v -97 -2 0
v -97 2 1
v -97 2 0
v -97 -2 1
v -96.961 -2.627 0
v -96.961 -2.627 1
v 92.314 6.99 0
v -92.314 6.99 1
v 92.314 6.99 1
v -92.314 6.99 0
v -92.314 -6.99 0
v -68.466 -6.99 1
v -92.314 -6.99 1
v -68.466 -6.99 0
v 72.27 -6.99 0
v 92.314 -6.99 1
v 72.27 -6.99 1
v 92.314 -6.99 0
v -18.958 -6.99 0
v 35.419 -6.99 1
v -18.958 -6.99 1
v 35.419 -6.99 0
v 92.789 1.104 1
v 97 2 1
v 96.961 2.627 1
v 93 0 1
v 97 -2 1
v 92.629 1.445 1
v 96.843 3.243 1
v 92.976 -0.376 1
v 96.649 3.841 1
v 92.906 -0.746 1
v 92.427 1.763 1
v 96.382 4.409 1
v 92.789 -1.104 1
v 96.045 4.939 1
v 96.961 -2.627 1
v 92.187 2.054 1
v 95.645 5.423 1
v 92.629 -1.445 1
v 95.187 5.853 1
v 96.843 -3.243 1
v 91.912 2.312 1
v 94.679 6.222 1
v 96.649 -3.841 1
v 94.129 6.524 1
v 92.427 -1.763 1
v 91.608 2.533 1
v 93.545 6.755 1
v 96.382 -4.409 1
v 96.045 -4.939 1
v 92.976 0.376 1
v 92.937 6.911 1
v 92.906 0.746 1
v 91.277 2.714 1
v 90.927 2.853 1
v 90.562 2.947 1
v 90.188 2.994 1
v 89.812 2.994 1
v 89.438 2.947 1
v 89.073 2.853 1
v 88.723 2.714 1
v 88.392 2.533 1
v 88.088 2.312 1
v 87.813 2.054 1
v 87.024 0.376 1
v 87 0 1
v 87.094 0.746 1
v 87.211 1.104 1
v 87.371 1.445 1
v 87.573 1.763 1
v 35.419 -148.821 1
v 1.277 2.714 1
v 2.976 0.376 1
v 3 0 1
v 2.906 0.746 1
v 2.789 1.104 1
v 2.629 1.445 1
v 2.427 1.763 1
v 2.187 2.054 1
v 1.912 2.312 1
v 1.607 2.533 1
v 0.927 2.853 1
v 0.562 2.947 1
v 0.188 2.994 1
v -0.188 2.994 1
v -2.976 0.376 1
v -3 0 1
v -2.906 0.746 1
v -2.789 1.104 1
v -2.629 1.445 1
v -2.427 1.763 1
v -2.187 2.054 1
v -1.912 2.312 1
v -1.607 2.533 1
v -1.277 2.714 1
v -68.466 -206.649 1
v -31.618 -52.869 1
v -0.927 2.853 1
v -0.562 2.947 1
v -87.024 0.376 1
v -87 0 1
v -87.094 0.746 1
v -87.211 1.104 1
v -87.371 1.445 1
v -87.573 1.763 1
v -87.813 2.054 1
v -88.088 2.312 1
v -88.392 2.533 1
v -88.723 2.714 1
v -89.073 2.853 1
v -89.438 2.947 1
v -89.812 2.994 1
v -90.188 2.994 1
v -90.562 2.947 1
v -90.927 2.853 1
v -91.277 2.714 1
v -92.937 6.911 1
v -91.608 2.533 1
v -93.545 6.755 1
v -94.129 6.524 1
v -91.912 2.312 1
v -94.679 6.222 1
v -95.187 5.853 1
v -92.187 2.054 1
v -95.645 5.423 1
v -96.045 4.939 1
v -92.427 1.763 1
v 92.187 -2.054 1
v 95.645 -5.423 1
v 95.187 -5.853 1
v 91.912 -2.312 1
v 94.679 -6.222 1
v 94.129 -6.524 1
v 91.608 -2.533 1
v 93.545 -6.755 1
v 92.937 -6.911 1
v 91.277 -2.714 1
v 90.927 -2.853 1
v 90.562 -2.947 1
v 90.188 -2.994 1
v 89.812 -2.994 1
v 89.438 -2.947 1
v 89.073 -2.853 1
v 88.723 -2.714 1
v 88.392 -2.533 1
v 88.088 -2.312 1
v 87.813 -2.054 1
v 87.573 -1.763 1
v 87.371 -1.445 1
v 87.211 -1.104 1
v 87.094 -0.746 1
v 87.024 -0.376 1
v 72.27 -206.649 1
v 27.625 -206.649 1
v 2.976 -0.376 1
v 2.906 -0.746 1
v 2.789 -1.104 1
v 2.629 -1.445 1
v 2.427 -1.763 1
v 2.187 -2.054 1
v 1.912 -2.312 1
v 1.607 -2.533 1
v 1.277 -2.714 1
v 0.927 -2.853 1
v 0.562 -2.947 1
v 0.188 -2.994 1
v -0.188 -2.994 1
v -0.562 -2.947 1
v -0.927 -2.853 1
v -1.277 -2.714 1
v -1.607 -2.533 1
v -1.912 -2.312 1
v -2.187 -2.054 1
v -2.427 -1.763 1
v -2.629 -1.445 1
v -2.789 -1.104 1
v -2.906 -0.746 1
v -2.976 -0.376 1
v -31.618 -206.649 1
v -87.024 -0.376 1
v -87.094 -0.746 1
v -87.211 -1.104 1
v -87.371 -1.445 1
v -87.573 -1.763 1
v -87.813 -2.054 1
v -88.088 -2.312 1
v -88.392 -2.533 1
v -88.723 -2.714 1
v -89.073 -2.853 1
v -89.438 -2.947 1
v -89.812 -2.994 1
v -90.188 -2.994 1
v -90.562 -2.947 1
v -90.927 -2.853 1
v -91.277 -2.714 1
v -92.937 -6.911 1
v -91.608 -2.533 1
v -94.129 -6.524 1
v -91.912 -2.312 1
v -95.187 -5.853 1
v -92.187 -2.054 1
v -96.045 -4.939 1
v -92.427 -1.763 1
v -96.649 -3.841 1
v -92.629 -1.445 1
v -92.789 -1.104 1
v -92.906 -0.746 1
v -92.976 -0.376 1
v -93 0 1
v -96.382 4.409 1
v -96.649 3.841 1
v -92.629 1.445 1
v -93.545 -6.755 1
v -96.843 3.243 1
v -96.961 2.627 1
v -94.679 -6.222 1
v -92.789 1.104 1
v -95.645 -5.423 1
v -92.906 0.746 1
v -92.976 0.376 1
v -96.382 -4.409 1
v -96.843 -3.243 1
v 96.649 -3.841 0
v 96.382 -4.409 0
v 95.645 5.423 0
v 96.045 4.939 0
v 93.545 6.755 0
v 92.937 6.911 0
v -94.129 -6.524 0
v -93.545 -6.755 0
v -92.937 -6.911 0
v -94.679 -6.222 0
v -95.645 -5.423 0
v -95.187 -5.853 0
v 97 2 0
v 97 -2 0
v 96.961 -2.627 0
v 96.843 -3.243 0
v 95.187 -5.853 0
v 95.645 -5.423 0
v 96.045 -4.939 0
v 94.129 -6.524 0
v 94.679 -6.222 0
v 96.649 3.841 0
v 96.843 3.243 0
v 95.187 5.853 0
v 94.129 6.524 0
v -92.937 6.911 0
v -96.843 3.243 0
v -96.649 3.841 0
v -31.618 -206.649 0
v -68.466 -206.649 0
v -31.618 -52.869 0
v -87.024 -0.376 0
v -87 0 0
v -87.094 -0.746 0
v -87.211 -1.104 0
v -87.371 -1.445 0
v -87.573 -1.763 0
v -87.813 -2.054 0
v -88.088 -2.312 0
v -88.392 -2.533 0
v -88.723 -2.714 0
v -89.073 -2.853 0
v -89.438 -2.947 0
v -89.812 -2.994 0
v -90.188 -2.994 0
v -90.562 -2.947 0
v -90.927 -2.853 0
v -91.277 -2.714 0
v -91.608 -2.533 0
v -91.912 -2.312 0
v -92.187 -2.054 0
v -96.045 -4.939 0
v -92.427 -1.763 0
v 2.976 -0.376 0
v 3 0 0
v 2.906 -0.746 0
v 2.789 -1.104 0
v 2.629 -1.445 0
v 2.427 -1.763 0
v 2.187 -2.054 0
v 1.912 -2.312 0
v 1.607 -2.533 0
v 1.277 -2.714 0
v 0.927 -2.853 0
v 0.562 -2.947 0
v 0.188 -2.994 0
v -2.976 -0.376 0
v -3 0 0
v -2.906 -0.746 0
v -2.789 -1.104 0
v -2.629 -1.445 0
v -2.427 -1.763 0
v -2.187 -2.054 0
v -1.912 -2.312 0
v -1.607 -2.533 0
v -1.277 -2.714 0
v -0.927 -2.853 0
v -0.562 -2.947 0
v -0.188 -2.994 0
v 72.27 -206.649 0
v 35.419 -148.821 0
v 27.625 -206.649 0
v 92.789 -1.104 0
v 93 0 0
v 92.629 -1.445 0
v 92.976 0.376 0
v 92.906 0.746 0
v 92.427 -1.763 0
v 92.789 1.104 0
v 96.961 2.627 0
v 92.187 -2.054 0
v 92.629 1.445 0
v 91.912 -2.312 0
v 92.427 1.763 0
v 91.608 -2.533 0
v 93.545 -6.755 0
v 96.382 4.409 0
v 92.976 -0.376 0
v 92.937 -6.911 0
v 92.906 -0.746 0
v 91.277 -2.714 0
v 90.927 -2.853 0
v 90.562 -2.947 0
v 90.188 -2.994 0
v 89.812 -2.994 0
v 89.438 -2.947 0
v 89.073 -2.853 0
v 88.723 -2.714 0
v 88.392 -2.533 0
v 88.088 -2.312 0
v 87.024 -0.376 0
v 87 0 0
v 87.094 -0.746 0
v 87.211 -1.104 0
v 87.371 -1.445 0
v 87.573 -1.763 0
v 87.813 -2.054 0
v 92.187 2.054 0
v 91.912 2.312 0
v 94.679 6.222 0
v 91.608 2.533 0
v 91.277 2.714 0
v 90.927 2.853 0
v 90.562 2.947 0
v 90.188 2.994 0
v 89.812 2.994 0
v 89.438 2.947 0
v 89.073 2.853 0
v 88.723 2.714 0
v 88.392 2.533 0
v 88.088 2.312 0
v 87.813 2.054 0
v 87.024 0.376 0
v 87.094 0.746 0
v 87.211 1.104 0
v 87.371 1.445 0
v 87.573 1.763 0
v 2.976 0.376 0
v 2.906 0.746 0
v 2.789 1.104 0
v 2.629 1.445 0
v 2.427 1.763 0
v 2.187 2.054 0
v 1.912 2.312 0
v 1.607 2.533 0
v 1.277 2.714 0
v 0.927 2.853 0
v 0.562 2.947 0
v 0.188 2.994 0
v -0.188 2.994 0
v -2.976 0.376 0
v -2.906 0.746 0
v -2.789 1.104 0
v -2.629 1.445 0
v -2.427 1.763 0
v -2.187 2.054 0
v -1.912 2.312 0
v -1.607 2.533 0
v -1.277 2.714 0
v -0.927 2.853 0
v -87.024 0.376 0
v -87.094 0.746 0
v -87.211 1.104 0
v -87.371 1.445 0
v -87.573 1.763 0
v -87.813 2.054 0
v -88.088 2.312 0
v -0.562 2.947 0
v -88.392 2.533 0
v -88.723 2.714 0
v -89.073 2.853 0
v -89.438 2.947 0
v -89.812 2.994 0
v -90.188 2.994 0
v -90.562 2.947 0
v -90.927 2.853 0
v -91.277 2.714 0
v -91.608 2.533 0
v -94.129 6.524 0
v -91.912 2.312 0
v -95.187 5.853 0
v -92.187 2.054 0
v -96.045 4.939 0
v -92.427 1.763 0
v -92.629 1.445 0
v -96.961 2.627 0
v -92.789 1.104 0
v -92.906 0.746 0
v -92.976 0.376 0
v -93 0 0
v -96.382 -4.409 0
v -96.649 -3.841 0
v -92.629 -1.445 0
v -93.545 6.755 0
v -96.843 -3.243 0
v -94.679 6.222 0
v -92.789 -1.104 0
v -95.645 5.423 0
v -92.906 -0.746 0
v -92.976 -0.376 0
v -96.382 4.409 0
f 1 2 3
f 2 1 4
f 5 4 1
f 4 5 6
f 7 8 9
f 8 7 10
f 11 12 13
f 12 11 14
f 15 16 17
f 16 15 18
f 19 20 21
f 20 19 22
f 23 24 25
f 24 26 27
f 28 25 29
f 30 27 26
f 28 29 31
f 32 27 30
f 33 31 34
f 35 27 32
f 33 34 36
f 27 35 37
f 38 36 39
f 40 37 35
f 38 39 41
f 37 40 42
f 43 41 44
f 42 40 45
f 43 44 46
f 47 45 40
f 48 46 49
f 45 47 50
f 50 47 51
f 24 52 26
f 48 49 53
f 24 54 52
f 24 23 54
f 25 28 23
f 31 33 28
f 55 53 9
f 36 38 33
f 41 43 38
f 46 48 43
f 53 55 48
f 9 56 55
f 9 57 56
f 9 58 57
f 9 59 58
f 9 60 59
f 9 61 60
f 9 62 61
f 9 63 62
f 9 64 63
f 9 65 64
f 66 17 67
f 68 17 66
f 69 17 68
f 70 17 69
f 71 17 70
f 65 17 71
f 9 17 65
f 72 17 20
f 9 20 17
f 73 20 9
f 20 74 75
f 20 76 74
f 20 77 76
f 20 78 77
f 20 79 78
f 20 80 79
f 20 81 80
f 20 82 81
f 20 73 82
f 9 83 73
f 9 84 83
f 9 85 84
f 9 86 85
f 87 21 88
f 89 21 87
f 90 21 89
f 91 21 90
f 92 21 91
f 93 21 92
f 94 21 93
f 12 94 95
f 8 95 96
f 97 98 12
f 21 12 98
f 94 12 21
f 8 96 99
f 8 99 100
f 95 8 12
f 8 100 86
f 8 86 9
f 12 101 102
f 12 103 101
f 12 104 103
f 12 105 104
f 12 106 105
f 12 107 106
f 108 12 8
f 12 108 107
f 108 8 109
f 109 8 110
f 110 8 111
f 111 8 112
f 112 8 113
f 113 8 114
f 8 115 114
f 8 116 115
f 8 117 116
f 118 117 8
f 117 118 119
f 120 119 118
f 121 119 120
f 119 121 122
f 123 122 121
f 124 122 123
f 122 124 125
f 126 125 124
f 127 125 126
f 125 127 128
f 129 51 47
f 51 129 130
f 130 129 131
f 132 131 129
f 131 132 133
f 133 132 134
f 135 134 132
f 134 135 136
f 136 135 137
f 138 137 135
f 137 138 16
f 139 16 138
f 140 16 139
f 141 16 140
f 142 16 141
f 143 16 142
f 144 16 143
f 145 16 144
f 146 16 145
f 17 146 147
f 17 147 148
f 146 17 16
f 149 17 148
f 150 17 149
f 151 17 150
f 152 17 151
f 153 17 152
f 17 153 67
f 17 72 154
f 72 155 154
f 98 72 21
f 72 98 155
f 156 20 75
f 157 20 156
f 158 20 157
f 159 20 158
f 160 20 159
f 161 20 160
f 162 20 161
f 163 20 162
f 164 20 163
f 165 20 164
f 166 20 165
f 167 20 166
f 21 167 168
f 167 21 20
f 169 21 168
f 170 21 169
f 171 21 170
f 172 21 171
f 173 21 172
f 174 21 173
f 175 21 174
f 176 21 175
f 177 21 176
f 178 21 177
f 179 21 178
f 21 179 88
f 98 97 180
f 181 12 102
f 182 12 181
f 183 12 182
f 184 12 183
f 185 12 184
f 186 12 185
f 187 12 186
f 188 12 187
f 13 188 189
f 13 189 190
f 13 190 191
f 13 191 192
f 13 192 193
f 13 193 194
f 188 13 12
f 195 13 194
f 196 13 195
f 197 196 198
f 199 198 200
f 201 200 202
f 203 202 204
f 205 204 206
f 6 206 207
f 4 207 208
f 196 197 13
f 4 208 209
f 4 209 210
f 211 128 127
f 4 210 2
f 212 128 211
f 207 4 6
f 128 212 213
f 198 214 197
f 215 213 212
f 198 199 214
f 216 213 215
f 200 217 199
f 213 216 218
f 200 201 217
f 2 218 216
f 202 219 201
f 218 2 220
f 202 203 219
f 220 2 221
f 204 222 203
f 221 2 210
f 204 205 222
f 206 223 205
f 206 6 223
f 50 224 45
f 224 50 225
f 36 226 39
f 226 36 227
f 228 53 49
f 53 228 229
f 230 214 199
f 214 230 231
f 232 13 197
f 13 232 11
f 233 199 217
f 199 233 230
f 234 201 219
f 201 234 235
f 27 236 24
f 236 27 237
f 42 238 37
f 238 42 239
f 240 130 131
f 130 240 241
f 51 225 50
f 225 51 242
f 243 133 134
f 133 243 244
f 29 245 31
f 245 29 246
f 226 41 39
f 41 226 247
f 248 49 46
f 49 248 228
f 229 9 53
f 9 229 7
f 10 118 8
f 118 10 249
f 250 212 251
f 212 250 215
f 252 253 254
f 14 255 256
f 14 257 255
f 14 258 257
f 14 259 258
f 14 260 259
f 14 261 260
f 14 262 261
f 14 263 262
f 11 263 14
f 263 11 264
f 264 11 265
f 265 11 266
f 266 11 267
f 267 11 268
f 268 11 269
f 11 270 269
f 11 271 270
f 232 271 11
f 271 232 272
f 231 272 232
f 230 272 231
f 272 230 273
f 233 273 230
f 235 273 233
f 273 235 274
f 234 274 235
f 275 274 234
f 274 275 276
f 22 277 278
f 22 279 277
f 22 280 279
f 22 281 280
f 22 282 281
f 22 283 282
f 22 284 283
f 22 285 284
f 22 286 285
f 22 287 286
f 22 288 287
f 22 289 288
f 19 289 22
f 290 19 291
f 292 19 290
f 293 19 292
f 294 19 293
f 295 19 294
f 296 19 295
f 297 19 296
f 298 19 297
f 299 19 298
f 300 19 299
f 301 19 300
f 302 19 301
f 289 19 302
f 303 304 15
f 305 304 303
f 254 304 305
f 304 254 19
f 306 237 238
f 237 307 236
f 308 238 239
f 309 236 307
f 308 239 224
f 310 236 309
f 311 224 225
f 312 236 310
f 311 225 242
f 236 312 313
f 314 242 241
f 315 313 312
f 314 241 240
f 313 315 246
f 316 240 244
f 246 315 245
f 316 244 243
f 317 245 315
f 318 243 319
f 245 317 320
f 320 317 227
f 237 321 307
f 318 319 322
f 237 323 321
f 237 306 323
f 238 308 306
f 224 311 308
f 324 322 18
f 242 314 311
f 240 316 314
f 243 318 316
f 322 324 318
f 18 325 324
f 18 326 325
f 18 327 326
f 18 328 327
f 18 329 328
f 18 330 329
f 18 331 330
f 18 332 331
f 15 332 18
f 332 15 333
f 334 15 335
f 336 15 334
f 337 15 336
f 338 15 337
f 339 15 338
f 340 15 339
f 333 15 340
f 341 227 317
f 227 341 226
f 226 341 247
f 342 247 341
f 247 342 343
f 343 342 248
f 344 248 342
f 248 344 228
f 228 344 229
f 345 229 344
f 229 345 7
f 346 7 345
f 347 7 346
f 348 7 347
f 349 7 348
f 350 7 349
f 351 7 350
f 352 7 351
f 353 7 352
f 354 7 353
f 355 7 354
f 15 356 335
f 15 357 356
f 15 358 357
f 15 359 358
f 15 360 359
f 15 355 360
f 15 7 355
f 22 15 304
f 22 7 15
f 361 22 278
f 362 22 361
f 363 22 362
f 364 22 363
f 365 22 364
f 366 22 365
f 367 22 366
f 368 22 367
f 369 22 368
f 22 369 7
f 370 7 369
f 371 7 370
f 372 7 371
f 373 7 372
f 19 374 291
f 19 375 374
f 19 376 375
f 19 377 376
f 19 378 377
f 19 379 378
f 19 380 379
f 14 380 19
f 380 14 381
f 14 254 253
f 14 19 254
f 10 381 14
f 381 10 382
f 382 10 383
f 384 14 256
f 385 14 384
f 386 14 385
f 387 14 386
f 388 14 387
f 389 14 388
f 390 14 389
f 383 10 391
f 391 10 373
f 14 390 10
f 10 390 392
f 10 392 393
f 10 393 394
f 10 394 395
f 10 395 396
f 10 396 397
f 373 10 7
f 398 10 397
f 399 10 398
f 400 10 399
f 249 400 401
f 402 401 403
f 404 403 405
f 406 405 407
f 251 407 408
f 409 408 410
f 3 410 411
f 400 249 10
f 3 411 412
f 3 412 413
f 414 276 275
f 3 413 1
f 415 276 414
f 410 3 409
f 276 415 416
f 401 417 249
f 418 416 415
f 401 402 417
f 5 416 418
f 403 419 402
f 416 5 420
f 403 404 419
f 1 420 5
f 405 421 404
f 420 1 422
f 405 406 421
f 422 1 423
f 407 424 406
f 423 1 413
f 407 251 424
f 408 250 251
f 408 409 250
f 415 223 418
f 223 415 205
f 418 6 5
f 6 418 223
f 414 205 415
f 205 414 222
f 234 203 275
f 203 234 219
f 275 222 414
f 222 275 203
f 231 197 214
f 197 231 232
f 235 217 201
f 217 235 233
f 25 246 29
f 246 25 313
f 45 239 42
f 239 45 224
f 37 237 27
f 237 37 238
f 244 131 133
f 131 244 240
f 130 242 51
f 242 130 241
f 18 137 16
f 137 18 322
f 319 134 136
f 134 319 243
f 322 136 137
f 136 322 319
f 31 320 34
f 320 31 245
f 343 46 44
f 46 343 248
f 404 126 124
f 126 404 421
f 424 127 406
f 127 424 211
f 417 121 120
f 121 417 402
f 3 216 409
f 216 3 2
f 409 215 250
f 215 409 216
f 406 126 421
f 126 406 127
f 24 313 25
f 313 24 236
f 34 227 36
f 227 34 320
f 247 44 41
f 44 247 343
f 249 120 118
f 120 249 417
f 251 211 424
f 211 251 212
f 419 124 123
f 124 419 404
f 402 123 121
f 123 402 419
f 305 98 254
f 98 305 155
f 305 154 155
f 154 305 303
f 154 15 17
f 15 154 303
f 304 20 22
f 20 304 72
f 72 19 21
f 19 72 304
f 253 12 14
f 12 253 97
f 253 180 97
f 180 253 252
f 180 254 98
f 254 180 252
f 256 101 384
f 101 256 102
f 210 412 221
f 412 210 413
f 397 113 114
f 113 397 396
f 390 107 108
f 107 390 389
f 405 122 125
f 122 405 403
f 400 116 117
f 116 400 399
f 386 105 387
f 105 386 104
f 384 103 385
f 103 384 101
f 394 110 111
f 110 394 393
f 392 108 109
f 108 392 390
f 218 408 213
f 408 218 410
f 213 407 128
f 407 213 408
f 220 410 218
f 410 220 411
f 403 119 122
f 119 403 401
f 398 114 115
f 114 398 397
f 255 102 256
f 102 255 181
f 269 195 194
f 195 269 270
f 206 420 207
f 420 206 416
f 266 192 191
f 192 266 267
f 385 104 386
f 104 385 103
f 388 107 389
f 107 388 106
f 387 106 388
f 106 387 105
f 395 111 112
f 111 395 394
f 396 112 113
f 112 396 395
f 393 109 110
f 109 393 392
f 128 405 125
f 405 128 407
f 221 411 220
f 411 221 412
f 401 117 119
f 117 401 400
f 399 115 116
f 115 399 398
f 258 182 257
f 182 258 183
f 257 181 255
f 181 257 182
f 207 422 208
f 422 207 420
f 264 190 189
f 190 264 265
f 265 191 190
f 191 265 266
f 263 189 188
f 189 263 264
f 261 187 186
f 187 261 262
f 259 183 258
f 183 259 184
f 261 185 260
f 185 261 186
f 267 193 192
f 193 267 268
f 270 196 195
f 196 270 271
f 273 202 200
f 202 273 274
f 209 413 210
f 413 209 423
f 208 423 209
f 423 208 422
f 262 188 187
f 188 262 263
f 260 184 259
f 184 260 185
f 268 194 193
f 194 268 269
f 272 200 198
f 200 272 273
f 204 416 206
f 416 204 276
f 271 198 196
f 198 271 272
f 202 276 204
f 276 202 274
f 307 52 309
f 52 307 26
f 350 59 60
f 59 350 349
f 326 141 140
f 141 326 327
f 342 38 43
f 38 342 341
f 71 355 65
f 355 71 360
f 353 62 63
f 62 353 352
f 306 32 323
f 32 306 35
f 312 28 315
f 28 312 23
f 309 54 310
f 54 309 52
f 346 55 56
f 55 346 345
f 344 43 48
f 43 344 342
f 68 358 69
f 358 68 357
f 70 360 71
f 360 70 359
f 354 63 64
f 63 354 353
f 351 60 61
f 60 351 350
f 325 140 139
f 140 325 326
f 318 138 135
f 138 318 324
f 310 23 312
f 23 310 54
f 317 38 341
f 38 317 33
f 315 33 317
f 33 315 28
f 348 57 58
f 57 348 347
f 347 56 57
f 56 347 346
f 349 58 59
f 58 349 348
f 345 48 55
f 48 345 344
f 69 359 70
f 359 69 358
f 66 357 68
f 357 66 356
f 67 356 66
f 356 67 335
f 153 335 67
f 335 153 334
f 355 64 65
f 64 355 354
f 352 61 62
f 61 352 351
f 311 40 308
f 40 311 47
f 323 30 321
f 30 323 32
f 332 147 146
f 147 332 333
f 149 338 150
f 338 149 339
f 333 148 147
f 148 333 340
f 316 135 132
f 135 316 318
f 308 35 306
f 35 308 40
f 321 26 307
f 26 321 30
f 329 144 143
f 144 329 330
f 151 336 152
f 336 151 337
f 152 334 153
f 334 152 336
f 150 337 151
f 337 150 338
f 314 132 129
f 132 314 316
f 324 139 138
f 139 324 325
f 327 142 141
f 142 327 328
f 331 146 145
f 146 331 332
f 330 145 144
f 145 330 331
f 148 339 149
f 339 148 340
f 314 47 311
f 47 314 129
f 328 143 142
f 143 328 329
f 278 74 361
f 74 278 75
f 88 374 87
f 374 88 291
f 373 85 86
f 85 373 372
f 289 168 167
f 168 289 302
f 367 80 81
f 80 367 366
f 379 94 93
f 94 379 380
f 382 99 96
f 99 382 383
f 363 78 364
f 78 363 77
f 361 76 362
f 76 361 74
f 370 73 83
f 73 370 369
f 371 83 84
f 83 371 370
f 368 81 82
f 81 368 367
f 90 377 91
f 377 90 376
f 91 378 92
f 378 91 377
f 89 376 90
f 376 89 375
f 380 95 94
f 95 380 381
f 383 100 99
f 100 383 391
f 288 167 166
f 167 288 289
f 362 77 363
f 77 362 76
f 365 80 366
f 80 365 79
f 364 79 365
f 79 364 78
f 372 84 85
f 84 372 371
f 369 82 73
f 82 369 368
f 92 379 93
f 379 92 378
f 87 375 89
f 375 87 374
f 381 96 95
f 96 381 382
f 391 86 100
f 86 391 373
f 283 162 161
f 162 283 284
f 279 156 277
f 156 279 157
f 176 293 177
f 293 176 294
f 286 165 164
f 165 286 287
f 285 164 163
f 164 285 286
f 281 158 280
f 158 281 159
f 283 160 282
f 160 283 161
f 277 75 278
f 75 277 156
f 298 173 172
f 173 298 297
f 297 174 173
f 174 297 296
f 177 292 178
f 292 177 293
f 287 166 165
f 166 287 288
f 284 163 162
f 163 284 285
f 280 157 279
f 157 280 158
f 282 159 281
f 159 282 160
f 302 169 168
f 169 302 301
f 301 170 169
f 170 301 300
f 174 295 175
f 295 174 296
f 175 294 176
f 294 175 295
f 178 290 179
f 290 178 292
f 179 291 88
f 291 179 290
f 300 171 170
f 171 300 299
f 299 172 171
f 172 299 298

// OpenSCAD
$fn = 50;


difference() {
	union() {
		translate(v = [0, 0, 0]) {
			rotate(a = [0, 0, 0]) {
				hull() {
					translate(v = [-92.0000000000, 2.0000000000, 0]) {
						rotate(a = [0, 0, 0]) {
							translate(v = [0, 0, 0]) {
								rotate(a = [0, 0, 0]) {
									cylinder(h = 1, r = 5);
								}
							}
						}
					}
					translate(v = [92.0000000000, 2.0000000000, 0]) {
						rotate(a = [0, 0, 0]) {
							translate(v = [0, 0, 0]) {
								rotate(a = [0, 0, 0]) {
									cylinder(h = 1, r = 5);
								}
							}
						}
					}
					translate(v = [-92.0000000000, -2.0000000000, 0]) {
						rotate(a = [0, 0, 0]) {
							translate(v = [0, 0, 0]) {
								rotate(a = [0, 0, 0]) {
									cylinder(h = 1, r = 5);
								}
							}
						}
					}
					translate(v = [92.0000000000, -2.0000000000, 0]) {
						rotate(a = [0, 0, 0]) {
							translate(v = [0, 0, 0]) {
								rotate(a = [0, 0, 0]) {
									cylinder(h = 1, r = 5);
								}
							}
						}
					}
				}
			}
		}
		translate(v = [0, 0, 0]) {
			rotate(a = [0, 0, 0]) {
				linear_extrude(height = 1) {
					text(font = "DejaVu Sans Mono:style=Bold", halign = "center", size = 209.0000000000, text = "N", valign = "top");
				}
			}
		}
	}
	union() {
		translate(v = [-90.0000000000, 0.0000000000, -125.0000000000]) {
			rotate(a = [0, 0, 0]) {
				cylinder(h = 250, r = 3.0000000000);
			}
		}
		translate(v = [90.0000000000, 0.0000000000, -125.0000000000]) {
			rotate(a = [0, 0, 0]) {
				cylinder(h = 250, r = 3.0000000000);
			}
		}
		translate(v = [90.0000000000, 0.0000000000, -125.0000000000]) {
			rotate(a = [0, 0, 0]) {
				cylinder(h = 250, r = 3.0000000000);
			}
		}
		translate(v = [0, 0, -125.0000000000]) {
			rotate(a = [0, 0, 0]) {
				cylinder(h = 250, r = 3.0000000000);
			}
		}
	}
}
